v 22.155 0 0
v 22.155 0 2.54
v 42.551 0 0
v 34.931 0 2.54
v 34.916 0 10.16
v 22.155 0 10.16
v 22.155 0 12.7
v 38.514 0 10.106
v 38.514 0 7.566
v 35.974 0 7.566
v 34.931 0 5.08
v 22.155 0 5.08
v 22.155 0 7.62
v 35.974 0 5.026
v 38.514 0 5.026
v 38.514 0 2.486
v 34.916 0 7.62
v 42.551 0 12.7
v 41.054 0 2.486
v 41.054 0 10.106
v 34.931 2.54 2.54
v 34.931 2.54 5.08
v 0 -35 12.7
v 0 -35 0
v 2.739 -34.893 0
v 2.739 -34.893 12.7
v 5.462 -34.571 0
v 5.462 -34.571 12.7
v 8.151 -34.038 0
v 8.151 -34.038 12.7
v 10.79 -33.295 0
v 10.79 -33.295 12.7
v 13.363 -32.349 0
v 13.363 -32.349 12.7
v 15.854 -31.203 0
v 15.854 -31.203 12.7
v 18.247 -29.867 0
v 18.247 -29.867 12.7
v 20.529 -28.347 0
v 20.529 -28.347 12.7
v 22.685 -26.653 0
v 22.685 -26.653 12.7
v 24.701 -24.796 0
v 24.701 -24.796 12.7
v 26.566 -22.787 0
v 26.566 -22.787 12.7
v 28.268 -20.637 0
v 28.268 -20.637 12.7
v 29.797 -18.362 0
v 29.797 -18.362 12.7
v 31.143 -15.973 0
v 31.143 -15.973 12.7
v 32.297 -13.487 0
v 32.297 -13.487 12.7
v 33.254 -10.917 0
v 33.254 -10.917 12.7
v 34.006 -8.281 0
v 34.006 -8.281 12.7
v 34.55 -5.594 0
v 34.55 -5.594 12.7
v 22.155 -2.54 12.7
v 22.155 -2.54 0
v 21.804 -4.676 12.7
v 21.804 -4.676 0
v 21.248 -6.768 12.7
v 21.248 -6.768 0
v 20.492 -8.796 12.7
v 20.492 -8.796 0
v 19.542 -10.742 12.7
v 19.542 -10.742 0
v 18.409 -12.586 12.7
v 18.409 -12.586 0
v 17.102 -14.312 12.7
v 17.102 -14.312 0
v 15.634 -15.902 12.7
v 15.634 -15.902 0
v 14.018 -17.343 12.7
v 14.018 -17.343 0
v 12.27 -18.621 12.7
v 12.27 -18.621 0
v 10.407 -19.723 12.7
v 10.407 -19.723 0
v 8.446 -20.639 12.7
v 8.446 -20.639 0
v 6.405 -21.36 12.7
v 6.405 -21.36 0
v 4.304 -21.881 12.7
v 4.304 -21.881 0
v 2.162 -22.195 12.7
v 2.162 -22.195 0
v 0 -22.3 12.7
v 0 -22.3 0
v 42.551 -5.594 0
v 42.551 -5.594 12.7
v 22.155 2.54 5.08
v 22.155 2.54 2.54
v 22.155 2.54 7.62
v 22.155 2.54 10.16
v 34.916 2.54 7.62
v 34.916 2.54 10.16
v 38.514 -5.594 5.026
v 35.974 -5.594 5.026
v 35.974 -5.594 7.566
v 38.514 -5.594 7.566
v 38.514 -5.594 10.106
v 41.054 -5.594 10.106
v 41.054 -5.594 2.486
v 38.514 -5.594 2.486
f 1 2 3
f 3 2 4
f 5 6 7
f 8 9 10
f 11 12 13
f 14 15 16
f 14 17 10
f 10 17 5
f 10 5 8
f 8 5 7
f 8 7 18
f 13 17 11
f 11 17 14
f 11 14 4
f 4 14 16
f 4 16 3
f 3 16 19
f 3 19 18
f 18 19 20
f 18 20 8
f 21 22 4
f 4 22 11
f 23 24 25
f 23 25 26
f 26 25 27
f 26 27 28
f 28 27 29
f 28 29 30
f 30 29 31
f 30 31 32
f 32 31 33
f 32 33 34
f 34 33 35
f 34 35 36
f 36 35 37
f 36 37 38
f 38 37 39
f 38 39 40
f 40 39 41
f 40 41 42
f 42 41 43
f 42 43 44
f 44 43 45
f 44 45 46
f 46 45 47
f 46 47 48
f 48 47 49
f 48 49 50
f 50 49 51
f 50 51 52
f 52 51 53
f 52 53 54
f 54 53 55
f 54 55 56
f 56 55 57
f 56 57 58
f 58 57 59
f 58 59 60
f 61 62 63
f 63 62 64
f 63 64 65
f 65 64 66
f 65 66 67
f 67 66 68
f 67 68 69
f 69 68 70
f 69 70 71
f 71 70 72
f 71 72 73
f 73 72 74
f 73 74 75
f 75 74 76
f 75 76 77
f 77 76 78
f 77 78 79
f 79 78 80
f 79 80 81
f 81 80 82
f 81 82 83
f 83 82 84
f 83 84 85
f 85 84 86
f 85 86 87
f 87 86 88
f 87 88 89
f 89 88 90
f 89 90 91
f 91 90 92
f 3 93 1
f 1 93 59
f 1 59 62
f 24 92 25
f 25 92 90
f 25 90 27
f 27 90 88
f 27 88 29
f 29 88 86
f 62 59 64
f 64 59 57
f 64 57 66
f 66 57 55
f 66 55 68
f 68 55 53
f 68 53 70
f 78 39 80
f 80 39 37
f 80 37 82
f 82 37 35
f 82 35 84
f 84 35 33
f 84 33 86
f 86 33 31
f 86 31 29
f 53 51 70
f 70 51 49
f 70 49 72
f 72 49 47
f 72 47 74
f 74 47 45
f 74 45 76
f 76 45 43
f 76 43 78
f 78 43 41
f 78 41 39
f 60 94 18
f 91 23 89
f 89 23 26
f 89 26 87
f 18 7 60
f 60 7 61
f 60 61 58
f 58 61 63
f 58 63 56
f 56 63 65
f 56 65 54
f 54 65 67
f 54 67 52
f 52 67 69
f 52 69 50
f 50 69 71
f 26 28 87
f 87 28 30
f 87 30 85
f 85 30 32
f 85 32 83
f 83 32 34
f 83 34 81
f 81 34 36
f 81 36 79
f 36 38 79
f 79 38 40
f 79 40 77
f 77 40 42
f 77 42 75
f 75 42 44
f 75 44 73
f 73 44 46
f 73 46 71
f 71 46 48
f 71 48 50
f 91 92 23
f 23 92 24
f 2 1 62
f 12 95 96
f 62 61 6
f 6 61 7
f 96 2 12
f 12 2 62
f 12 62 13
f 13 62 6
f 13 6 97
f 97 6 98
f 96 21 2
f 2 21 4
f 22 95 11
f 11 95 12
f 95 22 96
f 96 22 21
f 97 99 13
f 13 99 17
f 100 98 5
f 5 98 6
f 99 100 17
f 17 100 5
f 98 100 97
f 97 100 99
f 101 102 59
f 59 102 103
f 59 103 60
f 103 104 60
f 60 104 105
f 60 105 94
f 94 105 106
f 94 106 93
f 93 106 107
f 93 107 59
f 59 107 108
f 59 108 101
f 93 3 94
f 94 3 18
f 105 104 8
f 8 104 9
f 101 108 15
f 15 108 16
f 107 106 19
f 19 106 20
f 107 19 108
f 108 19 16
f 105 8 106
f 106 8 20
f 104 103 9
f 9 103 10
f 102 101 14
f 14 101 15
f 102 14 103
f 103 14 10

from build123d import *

# Parameters (mm, degrees)
SKETCH1_R               = 35
SKETCH1_R_2             = 22.3
BOSS_EXTRUDE2_DEPTH     = 12.7
SKETCH4_W               = 2.54
SKETCH4_H               = 76.791301982
SKETCH4_W_2             = 87.412375573
SKETCH4_H_2             = 2.54
CUT_EXTRUDE_THIN4_DEPTH = 12.7
SKETCH7_W               = 12.775704106
SKETCH7_H               = 12.7
BOSS_EXTRUDE3_DEPTH     = 2.54
SKETCH11_W              = 12.775704106
SKETCH11_H              = 2.54
SKETCH11_W_2            = 12.761411891
BOSS_EXTRUDE6_DEPTH     = 2.54
SKETCH12_W              = 12.7
SKETCH12_H              = 5.594236833
BOSS_EXTRUDE7_DEPTH     = 7.62
SKETCH12_2_W            = 12.7
SKETCH12_2_H            = 5.594236833
BOSS_EXTRUDE8_DEPTH     = 2.54
CAVITY3_START           = 38.513729061
CAVITY3_OUTLINE_W       = 5.594236833
CAVITY3_OUTLINE_H       = 7.62
CAVITY3_DEPTH           = 2.54
CAVITY3_START_2         = 35.973729061
CAVITY3_2_OUTLINE_W     = 5.594236833
CAVITY3_2_OUTLINE_H     = 2.54
CAVITY3_2_DEPTH         = 2.54


# Read off the part's stored shape, not the designer's step: Cavity3
with BuildPart() as part:
    # Sketch1 → Boss-Extrude2 (new body)
    with BuildSketch(Plane.XY):
        Circle(SKETCH1_R)
        Circle(SKETCH1_R_2, mode=Mode.SUBTRACT)
    extrude(amount=BOSS_EXTRUDE2_DEPTH)

    # Sketch4 → Cut-Extrude-Thin4 (cut)
    with BuildSketch(Plane.XY.offset(12.7)):
        with Locations((-1.27, -1.456872926)):
            Rectangle(SKETCH4_W, SKETCH4_H)
        with Locations((4.088643373, -1.27)):
            Rectangle(SKETCH4_W_2, SKETCH4_H_2)
    extrude(amount=-CUT_EXTRUDE_THIN4_DEPTH, mode=Mode.SUBTRACT)


with BuildPart() as body_2:
    # of the pieces the cut leaves, the one that is kept (cut_extrude_thin4_keep)
    add(part.part.solids().sort_by_distance((34.907712615, -2.54, 12.7))[0])

    # Sketch7 → Boss-Extrude3 (add)
    with BuildSketch(Plane(origin=(0, -2.54, 0), x_dir=(1, 0, 0), z_dir=(0, 1, 0))):
        with Locations((28.542725106, -6.35)):
            Rectangle(SKETCH7_W, SKETCH7_H)
    extrude(amount=BOSS_EXTRUDE3_DEPTH)

    # Sketch11 → Boss-Extrude6 (add)
    with BuildSketch(Plane(origin=(0, 0, 0), x_dir=(1, 0, 0), z_dir=(0, 1, 0))):
        with Locations((28.542725106, -3.81)):
            Rectangle(SKETCH11_W, SKETCH11_H)
        with Locations((28.535578999, -8.89)):
            Rectangle(SKETCH11_W_2, SKETCH11_H)
    extrude(amount=BOSS_EXTRUDE6_DEPTH)

    # Sketch12 → Boss-Extrude7 (add)
    with BuildSketch(Plane(origin=(34.930577159, 0, 0), x_dir=(0, 0, -1), z_dir=(1, 0, 0))):
        with Locations((-6.35, -2.797118417)):
            Rectangle(SKETCH12_W, SKETCH12_H)
    extrude(amount=BOSS_EXTRUDE7_DEPTH)

    # Sketch12<2> → Boss-Extrude8 (add)
    with BuildSketch(Plane(origin=(34.930577159, 0, 0), x_dir=(0, 0, -1), z_dir=(1, 0, 0))):
        with Locations((-6.35, -2.797118417)):
            Rectangle(SKETCH12_2_W, SKETCH12_2_H)
    extrude(amount=-BOSS_EXTRUDE8_DEPTH)

    # Cavity3 outline → Cavity3 (cut)
    with BuildSketch(Plane.YZ.offset(CAVITY3_START)):
        with Locations((-2.797118417, 6.296394857)):
            Rectangle(CAVITY3_OUTLINE_W, CAVITY3_OUTLINE_H)
    extrude(amount=CAVITY3_DEPTH, mode=Mode.SUBTRACT)

    # Cavity3 2 outline → Cavity3 2 (cut)
    with BuildSketch(Plane.YZ.offset(CAVITY3_START_2)):
        with Locations((-2.797118417, 6.296394857)):
            Rectangle(CAVITY3_2_OUTLINE_W, CAVITY3_2_OUTLINE_H)
    extrude(amount=CAVITY3_2_DEPTH, mode=Mode.SUBTRACT)


solid = body_2.part
